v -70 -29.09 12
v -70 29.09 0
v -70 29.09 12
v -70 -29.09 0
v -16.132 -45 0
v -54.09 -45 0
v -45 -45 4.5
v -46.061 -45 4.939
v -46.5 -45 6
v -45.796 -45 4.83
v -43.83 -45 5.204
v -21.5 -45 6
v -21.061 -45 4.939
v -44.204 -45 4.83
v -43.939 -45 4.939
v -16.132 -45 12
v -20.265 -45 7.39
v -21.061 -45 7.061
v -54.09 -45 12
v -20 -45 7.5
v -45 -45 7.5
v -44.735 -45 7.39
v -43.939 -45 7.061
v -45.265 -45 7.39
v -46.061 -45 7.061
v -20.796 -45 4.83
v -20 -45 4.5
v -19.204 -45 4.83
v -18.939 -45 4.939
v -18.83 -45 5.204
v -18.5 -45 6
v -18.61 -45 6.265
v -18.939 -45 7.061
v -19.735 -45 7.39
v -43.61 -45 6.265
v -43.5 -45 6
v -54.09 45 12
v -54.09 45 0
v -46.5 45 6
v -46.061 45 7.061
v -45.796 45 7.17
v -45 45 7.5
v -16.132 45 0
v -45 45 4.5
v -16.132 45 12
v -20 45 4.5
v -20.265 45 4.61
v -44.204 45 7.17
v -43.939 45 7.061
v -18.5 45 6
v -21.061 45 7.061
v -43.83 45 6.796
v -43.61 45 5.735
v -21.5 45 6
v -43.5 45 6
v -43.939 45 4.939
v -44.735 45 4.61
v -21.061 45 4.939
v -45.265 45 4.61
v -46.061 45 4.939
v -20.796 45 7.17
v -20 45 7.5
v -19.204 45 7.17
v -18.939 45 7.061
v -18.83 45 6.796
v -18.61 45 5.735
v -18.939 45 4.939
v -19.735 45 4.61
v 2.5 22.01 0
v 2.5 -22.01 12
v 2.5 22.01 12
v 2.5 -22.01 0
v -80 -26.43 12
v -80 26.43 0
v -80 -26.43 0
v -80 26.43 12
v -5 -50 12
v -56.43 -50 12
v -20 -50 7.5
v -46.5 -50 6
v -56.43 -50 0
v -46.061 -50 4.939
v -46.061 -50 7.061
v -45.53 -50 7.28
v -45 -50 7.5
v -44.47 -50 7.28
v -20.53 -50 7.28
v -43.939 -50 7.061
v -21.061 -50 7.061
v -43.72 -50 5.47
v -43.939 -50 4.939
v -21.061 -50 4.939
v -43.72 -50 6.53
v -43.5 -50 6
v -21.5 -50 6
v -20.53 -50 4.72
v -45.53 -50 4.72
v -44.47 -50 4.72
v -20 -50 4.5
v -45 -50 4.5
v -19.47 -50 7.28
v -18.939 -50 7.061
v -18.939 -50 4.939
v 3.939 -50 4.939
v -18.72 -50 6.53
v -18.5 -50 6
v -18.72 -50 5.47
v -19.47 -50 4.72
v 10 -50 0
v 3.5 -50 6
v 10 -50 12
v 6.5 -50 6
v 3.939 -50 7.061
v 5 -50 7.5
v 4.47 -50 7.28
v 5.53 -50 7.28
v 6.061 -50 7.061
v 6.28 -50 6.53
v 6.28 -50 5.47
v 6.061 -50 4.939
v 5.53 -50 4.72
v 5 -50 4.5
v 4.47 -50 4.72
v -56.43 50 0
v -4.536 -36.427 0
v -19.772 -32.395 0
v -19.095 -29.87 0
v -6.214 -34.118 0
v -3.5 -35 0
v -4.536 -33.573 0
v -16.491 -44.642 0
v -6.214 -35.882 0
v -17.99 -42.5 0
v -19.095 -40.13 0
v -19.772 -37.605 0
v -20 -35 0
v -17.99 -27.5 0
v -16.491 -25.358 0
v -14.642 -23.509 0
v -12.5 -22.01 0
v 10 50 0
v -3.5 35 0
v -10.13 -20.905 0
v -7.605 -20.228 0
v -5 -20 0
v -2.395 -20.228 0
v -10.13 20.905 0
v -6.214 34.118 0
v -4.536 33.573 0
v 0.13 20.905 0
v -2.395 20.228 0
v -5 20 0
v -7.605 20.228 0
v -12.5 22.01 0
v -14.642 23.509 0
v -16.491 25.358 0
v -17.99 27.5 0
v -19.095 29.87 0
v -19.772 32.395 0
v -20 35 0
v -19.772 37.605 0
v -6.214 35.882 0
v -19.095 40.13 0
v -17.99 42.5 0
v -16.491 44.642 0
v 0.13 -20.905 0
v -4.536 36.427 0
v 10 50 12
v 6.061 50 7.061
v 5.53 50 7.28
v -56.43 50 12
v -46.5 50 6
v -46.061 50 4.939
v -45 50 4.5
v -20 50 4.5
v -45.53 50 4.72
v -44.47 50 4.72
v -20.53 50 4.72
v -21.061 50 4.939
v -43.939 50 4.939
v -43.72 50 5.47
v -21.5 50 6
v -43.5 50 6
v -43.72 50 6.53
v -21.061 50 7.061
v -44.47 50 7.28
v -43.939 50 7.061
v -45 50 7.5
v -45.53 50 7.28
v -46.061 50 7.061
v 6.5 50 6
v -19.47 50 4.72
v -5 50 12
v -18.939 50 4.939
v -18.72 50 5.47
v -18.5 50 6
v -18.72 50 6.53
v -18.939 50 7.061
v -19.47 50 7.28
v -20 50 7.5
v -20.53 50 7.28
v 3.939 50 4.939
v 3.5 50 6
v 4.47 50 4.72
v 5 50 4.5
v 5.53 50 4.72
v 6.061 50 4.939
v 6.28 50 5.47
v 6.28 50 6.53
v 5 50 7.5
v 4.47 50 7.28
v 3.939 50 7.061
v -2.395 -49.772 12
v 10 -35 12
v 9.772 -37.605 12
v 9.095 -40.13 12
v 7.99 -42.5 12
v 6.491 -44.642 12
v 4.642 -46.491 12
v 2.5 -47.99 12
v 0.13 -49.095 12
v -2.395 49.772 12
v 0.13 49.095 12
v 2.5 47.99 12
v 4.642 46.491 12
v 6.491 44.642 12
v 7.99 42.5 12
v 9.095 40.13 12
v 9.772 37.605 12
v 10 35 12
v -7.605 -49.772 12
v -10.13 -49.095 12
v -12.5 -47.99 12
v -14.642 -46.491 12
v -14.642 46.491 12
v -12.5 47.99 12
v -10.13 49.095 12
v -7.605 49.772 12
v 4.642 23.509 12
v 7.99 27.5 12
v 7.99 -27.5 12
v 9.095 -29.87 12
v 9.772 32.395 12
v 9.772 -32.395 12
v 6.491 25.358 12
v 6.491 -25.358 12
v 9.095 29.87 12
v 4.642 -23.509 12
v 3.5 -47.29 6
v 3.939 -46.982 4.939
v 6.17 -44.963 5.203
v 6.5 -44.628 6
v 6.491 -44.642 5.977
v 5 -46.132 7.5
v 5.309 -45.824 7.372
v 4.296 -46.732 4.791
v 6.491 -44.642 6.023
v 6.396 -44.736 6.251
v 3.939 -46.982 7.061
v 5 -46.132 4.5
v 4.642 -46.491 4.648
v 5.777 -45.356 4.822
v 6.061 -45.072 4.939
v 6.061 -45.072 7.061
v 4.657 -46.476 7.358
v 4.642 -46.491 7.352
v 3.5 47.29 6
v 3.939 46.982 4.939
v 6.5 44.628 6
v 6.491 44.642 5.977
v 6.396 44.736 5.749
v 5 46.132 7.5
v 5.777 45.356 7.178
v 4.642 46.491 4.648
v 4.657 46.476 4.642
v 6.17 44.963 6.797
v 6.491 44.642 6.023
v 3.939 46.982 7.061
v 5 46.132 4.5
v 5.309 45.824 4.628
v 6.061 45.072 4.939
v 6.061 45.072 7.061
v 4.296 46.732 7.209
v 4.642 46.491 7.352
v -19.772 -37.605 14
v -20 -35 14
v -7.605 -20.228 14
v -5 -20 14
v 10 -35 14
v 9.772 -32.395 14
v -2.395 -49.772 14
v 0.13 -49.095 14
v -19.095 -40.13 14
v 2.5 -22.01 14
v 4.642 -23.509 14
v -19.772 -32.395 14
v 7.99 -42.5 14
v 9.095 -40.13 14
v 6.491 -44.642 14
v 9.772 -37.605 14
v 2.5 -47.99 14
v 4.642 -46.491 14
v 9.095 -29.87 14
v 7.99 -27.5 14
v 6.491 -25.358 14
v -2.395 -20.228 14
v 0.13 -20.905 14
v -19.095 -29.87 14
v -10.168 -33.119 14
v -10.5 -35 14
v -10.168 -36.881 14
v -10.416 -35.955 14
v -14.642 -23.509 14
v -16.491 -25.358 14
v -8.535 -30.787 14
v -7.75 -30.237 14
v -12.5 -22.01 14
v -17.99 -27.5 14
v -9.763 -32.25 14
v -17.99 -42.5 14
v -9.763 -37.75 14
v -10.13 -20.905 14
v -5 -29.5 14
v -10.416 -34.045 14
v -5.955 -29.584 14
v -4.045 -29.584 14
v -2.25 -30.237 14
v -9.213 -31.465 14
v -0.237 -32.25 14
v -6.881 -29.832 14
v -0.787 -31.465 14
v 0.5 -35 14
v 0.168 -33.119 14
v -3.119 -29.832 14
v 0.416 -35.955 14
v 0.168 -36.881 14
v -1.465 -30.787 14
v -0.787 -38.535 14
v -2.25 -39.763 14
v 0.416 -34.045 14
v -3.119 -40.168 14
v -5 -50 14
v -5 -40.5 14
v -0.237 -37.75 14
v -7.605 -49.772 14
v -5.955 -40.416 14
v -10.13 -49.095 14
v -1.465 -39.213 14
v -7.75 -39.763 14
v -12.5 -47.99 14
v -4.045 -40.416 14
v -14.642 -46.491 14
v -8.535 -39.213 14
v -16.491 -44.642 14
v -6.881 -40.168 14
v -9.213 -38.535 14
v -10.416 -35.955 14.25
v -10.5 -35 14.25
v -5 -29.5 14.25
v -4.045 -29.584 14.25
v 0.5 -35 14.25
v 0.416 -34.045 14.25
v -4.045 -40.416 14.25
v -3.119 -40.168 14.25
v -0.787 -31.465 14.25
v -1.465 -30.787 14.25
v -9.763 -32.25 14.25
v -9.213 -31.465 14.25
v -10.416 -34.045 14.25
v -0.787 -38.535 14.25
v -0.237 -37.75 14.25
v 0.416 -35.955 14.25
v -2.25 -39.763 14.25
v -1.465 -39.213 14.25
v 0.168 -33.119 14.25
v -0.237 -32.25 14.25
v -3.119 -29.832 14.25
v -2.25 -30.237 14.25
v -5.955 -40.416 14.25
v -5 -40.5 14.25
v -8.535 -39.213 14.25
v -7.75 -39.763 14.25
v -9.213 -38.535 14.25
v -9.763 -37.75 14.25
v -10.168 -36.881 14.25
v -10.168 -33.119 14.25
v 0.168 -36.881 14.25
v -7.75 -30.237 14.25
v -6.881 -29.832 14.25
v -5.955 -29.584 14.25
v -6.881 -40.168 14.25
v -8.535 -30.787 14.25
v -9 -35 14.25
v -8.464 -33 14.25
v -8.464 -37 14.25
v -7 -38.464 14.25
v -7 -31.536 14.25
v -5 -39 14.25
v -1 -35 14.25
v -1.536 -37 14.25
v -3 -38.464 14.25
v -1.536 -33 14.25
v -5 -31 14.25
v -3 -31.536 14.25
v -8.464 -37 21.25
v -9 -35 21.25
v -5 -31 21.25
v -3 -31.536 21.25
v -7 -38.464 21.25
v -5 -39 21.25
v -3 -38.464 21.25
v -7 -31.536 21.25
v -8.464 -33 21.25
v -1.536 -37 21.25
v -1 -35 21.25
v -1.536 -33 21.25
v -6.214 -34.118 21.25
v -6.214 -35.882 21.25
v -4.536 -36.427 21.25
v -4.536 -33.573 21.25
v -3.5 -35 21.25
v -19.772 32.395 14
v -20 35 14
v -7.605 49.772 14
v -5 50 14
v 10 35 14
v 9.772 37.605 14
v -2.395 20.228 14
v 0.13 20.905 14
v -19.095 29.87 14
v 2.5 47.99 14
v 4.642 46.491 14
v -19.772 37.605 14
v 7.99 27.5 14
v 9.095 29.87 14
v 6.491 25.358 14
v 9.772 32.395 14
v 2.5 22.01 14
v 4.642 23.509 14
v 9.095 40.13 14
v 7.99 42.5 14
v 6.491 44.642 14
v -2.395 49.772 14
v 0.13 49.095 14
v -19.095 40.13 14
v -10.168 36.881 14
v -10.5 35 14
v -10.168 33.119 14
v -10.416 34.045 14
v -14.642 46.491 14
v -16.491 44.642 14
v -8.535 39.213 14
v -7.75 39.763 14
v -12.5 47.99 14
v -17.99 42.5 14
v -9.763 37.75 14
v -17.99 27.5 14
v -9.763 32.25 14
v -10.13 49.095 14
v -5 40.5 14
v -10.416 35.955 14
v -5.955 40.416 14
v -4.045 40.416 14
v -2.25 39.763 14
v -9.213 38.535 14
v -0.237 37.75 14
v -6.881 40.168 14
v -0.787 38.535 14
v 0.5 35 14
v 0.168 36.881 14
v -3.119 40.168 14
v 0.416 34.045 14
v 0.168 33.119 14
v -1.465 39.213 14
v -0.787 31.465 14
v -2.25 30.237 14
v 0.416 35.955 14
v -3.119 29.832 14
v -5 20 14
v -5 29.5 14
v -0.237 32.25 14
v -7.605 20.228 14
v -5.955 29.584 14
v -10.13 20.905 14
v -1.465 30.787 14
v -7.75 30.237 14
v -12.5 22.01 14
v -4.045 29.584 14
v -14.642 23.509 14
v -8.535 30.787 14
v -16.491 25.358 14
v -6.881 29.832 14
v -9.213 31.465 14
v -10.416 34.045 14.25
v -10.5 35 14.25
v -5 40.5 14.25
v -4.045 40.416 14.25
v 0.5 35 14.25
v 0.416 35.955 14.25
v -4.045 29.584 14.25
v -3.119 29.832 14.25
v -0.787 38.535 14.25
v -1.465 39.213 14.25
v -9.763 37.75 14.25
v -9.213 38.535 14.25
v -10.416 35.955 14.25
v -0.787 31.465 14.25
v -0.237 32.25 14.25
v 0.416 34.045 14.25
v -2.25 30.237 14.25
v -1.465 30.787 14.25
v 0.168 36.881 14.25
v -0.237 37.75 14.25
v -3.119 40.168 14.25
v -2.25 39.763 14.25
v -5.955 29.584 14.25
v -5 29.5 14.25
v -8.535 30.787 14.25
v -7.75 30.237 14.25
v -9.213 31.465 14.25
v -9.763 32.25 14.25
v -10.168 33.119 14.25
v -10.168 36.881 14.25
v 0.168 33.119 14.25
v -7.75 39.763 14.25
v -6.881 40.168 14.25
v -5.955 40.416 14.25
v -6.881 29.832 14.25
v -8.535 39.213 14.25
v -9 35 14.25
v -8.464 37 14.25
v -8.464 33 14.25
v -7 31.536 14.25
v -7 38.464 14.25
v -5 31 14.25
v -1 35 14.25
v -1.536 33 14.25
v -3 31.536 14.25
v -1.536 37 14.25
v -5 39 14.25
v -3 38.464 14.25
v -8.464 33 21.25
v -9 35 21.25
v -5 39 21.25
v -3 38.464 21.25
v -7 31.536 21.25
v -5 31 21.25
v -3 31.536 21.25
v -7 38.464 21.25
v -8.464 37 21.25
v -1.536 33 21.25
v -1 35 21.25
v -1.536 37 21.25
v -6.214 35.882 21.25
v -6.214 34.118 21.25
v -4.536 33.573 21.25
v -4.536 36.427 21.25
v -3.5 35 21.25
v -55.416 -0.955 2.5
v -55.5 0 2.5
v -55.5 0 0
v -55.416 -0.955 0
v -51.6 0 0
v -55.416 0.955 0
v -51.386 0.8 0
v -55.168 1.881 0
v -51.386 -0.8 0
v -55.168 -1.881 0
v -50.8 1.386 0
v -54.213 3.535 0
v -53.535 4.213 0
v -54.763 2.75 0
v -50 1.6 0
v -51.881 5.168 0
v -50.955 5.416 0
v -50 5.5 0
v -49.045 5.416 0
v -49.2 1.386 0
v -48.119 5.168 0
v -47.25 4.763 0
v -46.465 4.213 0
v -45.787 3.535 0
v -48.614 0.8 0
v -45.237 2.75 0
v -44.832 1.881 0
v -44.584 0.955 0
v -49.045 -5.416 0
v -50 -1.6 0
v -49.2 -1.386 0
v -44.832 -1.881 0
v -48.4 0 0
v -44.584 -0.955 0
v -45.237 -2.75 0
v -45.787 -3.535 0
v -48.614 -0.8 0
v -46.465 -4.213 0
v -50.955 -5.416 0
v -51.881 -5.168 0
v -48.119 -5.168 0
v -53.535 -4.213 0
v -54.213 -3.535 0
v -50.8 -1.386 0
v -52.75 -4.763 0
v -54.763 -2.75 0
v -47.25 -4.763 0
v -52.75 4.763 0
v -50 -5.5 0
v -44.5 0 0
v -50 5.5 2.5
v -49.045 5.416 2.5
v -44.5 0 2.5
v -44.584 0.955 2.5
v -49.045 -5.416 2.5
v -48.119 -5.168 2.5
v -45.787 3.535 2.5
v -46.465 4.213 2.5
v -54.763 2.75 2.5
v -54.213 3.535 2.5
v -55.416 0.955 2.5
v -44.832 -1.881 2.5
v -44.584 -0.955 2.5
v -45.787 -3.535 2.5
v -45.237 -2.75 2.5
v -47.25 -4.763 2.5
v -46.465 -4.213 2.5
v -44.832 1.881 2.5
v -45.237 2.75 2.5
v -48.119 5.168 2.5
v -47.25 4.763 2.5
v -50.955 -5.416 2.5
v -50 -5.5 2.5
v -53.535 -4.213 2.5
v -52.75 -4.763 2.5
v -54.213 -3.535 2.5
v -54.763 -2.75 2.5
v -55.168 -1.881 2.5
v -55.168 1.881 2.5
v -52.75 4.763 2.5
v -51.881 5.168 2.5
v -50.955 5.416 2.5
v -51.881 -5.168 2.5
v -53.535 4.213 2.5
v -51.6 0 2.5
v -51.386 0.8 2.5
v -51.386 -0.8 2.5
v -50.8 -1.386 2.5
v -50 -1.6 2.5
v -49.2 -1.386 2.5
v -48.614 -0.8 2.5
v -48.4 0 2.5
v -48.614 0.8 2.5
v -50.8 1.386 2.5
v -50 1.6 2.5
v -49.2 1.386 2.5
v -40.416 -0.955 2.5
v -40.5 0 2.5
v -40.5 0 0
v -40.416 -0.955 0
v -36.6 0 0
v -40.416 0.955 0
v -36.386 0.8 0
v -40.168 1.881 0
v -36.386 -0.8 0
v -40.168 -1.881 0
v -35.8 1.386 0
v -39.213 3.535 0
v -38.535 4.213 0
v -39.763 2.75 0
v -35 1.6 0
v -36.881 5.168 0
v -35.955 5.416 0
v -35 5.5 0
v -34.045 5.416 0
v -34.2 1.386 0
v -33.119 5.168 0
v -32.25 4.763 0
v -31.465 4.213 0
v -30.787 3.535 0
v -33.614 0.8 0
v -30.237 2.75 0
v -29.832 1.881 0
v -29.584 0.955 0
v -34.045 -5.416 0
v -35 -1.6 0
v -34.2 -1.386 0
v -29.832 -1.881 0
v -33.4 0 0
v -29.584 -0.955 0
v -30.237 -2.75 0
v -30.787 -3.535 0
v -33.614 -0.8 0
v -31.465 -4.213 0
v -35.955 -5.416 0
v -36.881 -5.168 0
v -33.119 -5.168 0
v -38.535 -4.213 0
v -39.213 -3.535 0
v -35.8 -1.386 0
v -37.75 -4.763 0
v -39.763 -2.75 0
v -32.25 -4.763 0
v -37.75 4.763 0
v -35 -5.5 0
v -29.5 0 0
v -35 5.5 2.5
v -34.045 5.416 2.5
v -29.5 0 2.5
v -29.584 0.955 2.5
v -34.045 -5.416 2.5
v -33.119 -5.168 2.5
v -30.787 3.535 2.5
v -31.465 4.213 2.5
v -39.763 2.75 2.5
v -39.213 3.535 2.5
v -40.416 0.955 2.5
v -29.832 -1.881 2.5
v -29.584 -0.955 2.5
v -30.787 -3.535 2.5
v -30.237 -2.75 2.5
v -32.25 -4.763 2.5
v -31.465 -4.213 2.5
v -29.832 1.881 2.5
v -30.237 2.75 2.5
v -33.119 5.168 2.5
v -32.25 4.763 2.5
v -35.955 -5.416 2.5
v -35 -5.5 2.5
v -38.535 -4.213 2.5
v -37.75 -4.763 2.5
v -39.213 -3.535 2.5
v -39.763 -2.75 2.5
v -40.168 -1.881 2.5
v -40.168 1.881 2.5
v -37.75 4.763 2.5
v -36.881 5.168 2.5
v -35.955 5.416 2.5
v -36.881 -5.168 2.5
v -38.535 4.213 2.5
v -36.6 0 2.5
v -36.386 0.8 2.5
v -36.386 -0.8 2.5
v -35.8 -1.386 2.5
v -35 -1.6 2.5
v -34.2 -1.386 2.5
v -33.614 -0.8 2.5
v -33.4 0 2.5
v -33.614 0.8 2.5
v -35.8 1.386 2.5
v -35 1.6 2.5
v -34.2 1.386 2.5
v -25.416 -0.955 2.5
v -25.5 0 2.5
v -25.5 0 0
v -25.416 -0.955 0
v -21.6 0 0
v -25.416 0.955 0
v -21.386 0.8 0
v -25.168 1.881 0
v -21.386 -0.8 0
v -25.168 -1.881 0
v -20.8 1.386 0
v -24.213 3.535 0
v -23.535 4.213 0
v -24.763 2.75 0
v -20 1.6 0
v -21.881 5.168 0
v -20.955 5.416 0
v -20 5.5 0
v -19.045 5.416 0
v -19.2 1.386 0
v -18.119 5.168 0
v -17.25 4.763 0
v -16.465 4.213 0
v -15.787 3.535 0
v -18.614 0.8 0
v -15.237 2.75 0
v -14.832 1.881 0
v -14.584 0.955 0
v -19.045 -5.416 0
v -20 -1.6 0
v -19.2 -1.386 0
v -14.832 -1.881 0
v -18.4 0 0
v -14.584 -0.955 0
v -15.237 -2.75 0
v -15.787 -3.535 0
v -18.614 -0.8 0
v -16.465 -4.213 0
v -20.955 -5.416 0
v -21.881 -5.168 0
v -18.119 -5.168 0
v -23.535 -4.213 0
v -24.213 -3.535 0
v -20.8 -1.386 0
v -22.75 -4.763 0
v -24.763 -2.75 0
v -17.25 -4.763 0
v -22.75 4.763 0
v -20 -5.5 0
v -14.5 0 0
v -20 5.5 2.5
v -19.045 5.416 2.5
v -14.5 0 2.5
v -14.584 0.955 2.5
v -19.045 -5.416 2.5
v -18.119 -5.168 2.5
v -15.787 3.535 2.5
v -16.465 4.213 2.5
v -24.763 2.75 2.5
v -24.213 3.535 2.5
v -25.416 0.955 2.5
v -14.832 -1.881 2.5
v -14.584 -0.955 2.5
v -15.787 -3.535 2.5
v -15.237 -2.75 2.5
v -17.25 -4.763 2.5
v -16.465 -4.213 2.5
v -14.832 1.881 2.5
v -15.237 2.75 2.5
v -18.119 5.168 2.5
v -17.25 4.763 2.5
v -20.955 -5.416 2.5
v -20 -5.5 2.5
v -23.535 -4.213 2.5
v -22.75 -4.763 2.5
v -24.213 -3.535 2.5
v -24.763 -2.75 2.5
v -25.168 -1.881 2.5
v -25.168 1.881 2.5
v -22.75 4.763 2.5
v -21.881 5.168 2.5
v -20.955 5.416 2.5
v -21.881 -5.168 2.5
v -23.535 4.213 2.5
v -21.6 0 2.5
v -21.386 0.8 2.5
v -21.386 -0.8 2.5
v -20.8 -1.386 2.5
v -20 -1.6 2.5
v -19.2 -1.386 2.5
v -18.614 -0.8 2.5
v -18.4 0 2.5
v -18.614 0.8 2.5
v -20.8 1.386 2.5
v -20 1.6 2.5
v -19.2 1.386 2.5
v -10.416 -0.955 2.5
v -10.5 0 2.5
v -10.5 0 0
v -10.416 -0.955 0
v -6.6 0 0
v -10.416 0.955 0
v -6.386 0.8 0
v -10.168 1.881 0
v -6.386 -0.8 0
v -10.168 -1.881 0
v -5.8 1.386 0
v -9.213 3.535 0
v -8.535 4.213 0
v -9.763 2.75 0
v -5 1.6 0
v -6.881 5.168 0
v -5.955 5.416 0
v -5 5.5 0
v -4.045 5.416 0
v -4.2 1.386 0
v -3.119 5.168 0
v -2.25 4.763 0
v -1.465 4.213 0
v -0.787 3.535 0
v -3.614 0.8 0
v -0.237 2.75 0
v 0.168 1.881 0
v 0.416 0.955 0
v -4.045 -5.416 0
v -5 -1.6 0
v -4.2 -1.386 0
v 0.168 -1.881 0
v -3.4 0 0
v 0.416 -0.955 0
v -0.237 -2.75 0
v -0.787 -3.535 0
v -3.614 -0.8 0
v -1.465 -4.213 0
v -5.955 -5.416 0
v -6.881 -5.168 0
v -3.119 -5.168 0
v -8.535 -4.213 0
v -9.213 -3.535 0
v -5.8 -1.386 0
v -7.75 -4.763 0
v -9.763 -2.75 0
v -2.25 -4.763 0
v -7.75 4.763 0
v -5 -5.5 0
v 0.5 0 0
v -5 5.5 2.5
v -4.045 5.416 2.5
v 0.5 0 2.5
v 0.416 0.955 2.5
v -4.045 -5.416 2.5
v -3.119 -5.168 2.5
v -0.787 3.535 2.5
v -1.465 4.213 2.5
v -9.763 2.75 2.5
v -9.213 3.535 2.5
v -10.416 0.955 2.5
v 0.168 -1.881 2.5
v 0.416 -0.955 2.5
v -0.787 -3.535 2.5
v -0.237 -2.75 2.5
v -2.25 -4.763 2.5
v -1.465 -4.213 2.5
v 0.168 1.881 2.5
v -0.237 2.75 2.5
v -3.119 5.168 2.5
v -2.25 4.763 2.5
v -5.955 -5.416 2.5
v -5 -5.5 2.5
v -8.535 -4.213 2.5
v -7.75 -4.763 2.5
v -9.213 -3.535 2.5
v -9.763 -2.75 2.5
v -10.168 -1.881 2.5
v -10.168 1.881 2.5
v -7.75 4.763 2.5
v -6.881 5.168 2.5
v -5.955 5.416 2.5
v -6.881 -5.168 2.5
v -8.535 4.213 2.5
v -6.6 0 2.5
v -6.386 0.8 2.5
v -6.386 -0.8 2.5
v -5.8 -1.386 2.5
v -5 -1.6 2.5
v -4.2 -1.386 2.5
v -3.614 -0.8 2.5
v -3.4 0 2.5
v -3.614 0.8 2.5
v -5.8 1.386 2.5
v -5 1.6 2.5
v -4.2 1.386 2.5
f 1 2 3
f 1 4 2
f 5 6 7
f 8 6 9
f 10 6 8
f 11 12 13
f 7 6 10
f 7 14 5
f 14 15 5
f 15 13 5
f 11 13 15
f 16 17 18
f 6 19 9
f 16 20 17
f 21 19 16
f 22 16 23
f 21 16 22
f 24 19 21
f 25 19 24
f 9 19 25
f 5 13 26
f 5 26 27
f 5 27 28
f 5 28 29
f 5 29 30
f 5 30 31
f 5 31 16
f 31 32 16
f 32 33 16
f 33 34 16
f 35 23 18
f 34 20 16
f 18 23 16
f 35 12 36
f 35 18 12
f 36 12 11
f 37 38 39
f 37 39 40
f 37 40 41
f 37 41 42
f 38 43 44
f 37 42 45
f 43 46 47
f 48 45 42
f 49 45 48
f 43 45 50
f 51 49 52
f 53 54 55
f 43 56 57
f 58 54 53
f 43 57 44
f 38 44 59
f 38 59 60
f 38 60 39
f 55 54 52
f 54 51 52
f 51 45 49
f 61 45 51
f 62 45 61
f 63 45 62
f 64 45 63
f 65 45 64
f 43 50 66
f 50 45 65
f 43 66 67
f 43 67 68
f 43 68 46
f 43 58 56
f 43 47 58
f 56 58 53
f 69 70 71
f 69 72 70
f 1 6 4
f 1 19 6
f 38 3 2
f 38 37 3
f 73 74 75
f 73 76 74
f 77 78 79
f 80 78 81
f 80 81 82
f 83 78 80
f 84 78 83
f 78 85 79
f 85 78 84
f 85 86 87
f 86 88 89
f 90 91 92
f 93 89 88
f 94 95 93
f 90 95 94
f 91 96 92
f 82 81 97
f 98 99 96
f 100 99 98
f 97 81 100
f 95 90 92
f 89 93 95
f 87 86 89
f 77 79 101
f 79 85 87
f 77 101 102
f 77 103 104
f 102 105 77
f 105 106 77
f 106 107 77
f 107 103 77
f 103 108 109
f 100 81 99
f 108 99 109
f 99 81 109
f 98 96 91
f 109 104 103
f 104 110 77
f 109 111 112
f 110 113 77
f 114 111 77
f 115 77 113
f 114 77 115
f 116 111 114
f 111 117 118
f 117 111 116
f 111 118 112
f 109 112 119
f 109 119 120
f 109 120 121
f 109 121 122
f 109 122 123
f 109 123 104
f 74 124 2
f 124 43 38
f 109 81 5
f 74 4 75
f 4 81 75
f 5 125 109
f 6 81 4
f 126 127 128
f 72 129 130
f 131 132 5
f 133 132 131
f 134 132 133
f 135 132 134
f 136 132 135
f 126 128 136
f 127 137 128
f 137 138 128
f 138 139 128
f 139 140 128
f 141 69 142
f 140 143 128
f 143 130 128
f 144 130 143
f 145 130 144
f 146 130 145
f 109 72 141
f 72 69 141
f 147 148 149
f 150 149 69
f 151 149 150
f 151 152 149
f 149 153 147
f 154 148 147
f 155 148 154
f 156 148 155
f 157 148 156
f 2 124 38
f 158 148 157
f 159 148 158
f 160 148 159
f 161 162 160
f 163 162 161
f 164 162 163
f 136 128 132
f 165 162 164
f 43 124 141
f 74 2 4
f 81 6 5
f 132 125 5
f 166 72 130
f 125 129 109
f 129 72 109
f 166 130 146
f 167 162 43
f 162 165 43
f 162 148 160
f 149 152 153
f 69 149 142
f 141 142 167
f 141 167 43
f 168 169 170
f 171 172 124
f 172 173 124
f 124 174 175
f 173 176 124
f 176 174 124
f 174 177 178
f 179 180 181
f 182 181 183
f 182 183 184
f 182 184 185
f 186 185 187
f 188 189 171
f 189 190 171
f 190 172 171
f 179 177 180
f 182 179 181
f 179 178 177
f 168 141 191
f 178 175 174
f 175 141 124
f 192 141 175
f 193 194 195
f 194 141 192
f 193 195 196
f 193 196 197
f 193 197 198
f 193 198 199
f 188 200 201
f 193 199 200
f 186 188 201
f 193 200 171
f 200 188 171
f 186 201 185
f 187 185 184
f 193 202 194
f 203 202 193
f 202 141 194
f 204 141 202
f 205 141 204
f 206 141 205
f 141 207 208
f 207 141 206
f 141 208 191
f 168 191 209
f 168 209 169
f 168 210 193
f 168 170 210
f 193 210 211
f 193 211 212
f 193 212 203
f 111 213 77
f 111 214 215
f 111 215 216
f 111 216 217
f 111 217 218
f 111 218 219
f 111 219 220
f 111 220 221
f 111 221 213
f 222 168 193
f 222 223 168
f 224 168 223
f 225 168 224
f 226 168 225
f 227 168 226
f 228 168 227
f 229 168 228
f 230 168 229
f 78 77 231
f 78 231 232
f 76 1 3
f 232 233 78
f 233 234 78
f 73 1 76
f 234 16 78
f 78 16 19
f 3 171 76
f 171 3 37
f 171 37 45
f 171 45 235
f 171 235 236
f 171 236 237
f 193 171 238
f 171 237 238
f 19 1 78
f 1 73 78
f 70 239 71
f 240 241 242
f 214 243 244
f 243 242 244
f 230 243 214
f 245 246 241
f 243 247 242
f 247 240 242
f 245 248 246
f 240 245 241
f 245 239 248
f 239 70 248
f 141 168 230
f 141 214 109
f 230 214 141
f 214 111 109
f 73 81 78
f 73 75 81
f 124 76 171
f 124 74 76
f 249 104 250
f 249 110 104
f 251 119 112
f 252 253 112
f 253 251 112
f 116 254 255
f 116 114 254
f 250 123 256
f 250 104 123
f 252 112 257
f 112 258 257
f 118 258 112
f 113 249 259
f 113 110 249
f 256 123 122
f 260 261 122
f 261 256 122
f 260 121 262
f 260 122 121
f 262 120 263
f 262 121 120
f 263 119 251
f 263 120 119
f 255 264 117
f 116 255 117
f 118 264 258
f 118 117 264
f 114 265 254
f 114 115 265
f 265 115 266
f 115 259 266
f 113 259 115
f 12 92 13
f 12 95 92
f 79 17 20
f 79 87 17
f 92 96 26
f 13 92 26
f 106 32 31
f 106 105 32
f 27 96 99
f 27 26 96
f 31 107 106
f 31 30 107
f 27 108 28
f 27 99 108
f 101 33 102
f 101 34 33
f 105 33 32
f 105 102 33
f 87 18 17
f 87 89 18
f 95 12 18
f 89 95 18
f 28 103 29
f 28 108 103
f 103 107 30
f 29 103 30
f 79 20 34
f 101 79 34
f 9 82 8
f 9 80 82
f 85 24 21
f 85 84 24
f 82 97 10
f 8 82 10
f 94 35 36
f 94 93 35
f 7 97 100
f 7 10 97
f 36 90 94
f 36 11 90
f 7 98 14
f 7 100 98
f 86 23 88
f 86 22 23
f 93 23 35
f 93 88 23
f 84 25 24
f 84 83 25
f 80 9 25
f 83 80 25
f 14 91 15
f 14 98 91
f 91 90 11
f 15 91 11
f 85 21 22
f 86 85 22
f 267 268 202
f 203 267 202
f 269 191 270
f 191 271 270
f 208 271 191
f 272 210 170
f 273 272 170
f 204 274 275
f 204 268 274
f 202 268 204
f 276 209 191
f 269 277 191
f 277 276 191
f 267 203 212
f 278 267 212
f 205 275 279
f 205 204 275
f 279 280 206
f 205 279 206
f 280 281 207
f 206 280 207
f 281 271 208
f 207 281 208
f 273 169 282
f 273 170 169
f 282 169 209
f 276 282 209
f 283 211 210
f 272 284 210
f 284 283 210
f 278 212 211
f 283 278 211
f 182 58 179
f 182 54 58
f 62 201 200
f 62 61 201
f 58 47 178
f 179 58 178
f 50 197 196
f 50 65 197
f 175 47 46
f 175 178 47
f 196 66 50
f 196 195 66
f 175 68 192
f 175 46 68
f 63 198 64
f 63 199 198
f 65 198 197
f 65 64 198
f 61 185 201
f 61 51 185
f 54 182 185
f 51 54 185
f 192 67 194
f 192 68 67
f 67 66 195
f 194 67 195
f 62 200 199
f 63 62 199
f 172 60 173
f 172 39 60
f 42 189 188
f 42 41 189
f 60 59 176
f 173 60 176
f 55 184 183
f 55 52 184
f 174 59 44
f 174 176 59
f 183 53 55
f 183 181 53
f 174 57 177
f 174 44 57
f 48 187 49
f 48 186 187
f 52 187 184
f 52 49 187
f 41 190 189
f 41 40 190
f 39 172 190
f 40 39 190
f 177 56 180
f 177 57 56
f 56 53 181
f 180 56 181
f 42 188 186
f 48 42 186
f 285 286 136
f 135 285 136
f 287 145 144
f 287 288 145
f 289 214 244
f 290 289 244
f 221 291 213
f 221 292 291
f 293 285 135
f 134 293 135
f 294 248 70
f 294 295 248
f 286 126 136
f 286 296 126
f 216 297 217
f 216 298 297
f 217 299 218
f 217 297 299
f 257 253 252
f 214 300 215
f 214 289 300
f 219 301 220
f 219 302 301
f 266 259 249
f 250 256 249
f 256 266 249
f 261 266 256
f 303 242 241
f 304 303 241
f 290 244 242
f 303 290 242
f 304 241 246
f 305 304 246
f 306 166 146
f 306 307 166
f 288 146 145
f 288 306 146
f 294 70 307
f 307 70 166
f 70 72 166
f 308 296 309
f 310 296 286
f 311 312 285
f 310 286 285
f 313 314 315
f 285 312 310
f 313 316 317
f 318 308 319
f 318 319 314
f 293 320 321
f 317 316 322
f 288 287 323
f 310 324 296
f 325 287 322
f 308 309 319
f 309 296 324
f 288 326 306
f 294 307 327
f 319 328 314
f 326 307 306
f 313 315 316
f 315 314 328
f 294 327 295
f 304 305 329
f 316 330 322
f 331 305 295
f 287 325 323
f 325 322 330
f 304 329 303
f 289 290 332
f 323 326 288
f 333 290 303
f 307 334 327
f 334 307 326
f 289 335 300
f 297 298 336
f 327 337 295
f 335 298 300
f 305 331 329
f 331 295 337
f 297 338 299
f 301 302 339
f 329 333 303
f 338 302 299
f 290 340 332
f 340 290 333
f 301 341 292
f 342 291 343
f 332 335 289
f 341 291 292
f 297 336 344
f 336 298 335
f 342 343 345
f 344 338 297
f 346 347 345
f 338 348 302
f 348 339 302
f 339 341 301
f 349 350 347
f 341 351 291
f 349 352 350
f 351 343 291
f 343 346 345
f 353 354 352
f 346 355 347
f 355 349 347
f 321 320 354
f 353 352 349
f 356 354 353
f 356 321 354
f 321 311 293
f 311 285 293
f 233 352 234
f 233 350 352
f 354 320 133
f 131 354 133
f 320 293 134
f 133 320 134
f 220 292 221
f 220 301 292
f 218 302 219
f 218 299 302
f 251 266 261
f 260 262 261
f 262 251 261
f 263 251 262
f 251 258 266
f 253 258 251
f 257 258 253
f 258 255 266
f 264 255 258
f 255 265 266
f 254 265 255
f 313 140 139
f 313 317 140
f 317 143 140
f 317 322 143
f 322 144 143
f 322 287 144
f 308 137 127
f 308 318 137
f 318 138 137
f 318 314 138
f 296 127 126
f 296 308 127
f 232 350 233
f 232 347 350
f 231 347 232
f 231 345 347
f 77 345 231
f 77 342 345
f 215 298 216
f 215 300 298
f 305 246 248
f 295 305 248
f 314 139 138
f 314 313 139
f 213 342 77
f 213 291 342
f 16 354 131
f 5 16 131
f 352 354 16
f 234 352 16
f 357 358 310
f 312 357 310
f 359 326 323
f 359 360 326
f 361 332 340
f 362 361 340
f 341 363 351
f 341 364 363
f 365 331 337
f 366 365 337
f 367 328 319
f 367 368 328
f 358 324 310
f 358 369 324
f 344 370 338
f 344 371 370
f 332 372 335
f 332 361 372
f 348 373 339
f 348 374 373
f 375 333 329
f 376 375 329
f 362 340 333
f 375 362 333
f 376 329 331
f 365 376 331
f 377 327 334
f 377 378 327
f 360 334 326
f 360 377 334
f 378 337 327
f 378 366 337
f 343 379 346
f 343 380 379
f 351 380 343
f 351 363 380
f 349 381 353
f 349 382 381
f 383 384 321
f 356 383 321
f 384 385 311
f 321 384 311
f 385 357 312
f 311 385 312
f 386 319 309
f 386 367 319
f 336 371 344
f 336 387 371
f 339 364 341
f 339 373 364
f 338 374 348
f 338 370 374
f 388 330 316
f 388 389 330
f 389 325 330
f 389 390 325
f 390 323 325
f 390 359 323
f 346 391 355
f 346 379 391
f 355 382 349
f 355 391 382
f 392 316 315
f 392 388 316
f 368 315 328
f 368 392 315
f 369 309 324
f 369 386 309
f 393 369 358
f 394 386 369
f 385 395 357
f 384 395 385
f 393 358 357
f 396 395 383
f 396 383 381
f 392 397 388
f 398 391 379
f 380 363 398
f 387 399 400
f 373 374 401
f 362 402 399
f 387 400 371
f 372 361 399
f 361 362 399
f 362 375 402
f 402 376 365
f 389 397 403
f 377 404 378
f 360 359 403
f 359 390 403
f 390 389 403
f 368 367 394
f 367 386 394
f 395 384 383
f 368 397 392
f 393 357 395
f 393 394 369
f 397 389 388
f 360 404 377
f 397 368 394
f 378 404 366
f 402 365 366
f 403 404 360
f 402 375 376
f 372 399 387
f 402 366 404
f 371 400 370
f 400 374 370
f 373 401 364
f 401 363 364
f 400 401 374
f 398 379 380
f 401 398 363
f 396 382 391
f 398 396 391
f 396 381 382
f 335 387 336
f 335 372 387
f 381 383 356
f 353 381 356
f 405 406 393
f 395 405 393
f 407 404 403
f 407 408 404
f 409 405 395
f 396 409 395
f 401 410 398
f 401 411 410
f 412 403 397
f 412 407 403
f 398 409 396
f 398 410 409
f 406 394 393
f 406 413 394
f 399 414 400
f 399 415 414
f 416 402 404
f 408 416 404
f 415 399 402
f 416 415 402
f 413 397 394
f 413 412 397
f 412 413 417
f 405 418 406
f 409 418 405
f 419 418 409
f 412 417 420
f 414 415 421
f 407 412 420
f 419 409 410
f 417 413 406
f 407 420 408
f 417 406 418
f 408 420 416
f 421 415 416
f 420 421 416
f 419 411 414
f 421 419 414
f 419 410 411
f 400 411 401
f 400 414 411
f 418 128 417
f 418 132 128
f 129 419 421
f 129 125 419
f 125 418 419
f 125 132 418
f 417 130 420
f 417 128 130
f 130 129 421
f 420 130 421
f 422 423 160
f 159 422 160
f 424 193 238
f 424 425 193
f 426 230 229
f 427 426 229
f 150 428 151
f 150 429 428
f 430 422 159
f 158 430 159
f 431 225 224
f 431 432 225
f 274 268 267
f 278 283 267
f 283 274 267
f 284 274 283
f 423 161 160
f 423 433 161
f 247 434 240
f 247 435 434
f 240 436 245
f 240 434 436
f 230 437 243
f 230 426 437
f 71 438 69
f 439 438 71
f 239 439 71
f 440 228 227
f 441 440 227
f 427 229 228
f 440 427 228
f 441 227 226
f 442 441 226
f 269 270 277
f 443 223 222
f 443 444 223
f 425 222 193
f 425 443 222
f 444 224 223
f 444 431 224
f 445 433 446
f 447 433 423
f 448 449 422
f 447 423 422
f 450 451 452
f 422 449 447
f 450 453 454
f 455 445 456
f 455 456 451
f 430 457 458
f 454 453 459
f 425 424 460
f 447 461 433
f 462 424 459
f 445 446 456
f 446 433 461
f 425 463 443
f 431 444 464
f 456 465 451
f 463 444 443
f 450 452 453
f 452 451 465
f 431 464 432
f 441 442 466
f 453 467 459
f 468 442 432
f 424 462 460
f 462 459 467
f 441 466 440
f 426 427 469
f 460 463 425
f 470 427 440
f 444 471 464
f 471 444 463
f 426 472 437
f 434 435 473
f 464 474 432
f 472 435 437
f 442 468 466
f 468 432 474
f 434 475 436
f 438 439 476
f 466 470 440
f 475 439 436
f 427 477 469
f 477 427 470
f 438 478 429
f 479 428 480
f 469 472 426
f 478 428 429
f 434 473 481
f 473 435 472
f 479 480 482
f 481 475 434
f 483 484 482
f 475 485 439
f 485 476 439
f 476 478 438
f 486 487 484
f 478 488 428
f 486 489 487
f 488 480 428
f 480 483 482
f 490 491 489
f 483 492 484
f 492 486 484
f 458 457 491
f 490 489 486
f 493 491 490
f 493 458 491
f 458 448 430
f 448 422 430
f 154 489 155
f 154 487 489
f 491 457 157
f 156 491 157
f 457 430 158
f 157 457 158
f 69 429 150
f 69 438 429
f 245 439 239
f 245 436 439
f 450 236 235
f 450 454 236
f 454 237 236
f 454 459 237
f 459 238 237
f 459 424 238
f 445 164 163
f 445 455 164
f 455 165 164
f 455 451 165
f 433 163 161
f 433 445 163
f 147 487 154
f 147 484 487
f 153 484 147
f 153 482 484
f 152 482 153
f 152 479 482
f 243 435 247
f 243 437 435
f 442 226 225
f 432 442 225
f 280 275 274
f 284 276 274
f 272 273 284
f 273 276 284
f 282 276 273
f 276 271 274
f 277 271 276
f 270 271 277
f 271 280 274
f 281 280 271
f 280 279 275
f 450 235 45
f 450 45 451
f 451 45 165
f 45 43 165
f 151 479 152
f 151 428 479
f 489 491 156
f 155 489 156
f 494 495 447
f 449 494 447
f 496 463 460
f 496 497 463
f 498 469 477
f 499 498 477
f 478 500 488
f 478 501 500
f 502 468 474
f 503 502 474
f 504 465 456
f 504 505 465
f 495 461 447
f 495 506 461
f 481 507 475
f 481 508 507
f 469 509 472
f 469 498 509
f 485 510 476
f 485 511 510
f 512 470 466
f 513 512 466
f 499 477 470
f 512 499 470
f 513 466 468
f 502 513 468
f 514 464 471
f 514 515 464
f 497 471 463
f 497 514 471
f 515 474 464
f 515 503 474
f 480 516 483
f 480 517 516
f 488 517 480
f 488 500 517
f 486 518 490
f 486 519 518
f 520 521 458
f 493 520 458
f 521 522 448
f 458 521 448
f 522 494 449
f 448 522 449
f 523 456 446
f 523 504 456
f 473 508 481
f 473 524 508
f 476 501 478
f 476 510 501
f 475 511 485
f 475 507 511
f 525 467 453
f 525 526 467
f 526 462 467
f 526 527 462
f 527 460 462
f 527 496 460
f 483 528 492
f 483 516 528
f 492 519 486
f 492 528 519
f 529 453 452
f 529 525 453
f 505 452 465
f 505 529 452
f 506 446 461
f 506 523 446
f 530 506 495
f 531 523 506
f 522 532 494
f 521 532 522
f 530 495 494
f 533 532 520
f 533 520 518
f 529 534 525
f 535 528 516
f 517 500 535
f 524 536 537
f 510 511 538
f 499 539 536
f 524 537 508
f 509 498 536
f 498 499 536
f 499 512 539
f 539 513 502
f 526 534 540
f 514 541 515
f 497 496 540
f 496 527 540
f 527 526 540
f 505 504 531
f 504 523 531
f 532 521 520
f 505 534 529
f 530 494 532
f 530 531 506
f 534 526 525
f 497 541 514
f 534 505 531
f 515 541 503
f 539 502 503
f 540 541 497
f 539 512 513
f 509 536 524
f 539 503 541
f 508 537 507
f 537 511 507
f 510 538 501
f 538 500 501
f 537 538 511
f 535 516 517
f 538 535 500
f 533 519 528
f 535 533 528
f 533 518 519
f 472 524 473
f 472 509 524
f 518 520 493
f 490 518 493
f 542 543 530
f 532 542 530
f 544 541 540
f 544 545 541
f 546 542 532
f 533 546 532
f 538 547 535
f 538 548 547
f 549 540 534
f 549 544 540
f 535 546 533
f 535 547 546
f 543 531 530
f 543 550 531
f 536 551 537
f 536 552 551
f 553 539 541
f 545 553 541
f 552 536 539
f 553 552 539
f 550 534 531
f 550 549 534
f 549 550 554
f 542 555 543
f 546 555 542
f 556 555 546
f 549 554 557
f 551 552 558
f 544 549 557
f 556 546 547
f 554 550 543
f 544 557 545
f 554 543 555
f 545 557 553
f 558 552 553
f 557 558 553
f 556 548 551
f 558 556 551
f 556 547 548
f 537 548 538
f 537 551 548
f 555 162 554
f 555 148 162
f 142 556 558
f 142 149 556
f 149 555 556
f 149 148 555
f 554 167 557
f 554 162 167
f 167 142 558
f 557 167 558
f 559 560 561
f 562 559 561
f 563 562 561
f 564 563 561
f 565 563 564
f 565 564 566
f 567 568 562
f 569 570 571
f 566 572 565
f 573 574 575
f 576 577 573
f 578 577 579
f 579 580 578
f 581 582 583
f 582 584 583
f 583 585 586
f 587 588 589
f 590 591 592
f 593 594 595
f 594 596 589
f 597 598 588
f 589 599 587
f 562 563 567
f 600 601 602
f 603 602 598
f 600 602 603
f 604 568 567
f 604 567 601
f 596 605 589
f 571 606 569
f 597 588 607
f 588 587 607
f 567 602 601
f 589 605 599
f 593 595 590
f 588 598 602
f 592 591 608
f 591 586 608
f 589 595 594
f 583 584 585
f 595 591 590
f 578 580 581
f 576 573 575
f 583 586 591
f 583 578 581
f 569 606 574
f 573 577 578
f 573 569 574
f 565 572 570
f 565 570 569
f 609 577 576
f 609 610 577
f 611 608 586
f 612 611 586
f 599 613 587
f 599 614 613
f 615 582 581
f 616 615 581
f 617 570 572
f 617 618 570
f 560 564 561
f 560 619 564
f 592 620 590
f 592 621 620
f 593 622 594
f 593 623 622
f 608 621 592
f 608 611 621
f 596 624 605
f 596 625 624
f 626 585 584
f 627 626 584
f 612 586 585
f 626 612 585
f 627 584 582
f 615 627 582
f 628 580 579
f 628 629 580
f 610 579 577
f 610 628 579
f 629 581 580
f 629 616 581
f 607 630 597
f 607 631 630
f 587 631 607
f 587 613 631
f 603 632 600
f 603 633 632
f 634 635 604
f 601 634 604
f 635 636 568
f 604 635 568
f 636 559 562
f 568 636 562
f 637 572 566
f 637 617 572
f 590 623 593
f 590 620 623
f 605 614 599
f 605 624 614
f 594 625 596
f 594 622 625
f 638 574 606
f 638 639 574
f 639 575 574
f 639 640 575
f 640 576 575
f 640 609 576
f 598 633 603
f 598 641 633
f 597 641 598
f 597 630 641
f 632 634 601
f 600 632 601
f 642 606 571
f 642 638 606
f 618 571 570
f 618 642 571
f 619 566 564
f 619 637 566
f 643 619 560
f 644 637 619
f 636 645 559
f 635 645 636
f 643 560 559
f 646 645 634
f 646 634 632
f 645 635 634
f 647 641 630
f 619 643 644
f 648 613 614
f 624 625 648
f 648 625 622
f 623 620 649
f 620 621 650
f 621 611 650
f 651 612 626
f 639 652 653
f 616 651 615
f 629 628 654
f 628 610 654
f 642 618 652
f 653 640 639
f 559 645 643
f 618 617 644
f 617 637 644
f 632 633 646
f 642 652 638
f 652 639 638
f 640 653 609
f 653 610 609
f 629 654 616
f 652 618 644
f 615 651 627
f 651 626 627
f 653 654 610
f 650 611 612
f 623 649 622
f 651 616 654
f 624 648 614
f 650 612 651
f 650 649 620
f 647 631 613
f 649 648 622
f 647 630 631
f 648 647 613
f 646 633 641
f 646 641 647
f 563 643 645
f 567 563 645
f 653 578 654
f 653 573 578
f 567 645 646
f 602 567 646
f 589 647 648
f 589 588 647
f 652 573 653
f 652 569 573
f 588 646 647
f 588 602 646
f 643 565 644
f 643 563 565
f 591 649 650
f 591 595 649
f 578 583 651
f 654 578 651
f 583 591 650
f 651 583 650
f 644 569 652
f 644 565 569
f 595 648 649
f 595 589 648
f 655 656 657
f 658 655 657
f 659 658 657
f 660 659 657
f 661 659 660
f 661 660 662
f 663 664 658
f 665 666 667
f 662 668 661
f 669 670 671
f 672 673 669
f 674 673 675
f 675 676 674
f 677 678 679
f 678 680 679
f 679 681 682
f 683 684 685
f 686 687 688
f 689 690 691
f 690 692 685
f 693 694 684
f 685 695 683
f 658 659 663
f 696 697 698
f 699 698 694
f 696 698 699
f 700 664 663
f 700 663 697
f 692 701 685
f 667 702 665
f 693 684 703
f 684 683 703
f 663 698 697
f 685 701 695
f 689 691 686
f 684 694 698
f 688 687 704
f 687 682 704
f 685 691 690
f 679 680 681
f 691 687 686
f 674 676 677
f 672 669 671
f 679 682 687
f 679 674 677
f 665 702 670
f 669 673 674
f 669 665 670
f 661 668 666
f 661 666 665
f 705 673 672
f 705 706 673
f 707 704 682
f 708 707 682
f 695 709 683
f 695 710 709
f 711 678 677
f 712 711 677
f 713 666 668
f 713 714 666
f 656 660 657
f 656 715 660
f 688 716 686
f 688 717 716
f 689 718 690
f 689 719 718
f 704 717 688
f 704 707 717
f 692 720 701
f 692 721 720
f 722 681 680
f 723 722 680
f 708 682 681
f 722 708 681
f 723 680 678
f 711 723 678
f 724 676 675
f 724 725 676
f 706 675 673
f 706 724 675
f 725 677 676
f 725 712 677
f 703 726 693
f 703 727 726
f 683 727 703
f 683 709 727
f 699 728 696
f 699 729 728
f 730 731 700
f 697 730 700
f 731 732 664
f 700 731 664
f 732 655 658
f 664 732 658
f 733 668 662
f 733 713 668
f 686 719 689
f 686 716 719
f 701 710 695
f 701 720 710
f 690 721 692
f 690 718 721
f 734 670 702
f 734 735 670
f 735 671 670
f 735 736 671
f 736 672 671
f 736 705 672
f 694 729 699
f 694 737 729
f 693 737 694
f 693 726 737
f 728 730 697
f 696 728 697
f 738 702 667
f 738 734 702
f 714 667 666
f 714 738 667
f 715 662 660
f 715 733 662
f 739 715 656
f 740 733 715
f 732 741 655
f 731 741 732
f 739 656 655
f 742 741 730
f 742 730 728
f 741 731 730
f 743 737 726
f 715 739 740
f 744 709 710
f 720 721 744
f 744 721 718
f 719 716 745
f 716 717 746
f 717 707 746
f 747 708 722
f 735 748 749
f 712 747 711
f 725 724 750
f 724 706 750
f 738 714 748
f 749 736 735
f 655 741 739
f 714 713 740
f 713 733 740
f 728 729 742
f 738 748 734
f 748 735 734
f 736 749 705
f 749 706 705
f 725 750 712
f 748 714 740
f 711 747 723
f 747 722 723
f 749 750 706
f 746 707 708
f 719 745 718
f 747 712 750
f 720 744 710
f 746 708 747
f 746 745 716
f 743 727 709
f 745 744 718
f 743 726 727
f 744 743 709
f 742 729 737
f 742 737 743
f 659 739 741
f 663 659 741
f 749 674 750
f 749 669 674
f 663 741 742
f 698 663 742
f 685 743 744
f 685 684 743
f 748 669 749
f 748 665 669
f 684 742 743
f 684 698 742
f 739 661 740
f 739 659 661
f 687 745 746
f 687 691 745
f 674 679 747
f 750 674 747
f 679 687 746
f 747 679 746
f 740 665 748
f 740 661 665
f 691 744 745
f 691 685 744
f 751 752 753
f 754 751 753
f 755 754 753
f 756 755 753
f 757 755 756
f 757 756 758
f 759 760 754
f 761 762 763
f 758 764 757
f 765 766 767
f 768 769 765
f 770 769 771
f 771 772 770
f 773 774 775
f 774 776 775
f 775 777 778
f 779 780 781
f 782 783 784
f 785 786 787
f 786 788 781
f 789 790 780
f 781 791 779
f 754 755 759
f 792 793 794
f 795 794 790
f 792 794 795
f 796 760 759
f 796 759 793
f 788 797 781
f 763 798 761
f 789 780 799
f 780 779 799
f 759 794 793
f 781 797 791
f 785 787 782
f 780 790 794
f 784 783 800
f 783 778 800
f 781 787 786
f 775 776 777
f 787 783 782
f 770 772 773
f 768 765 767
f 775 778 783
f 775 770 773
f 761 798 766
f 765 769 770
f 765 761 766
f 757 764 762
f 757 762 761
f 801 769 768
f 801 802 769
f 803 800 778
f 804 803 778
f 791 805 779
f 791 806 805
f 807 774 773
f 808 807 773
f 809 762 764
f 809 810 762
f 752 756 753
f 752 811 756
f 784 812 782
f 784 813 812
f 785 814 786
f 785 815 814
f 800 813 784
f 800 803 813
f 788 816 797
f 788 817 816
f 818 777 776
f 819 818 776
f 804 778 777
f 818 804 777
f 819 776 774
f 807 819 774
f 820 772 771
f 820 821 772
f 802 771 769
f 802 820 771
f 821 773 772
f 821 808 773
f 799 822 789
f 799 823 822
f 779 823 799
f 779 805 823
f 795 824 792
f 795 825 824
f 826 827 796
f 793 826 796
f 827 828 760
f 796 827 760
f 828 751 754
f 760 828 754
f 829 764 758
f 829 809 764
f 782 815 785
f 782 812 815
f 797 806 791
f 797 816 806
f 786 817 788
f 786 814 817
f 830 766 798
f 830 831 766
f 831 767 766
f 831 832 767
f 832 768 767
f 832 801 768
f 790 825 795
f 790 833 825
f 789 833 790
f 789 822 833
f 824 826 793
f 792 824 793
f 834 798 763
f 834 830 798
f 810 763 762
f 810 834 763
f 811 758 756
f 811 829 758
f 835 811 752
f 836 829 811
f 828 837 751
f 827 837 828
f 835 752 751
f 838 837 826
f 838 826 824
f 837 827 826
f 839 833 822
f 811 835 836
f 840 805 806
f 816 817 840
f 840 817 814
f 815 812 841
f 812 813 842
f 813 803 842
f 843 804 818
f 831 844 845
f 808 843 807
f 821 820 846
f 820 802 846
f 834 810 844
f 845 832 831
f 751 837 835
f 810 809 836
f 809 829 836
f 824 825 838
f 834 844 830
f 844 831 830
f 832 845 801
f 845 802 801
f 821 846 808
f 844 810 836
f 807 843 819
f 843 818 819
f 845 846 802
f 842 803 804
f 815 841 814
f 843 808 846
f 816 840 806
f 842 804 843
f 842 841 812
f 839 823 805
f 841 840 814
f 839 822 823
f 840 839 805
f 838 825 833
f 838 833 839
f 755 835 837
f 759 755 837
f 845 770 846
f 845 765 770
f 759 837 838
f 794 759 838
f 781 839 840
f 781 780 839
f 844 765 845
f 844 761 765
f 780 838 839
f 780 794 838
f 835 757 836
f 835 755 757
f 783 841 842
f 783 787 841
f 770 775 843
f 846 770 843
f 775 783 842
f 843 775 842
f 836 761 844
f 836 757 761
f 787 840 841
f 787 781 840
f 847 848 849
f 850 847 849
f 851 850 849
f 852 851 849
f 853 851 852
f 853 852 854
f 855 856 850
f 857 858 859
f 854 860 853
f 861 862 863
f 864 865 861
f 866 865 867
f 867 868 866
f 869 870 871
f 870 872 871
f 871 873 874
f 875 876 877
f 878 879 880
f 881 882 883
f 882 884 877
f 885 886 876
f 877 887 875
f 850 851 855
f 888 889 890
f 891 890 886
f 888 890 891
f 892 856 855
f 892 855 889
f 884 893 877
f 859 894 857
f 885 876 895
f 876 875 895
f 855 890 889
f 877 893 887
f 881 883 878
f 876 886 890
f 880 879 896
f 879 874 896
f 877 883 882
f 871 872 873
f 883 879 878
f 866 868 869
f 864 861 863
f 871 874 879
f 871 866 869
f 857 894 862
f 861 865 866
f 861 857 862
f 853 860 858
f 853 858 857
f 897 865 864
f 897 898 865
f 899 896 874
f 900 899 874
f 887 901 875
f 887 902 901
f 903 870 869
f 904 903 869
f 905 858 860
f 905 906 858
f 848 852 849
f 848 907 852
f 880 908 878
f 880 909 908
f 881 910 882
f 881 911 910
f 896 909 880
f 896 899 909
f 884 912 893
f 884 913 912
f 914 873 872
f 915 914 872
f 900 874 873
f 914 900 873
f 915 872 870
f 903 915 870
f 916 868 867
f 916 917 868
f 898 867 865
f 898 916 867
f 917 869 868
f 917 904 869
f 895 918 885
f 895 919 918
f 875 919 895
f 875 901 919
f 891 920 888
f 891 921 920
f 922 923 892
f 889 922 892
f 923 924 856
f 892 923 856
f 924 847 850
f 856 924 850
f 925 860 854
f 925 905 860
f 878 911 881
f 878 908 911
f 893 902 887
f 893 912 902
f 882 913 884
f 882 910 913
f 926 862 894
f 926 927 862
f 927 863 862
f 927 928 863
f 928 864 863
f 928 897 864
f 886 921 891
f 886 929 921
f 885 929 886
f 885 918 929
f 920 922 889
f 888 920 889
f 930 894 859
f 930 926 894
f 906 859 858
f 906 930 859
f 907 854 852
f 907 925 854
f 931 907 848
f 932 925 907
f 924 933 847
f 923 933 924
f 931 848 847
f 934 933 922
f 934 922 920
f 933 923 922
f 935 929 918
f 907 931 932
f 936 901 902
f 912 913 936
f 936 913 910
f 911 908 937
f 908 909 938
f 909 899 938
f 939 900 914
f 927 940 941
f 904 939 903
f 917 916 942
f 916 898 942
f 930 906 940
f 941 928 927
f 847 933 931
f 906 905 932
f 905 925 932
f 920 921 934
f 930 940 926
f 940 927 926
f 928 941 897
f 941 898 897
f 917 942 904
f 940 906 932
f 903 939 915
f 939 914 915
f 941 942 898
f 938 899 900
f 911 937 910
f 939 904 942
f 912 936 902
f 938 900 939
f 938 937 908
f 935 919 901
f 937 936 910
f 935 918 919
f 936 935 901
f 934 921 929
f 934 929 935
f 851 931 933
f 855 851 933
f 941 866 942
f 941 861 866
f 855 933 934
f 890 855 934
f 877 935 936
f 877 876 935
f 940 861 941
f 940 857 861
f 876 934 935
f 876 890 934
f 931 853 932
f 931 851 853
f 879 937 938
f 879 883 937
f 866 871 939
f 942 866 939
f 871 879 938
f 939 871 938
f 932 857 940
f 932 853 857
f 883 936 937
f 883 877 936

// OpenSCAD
// Desktop ball bearing spool holder
// Written by Joe Cabana  3/1/2014
// Added bigger spool sizes 4/8/2014
// You are free to use and/or modify this software for non-comercial
// uses as long as you retain this message. Thanks.

// Print at .25 layer height, 25% infill, 2 extra shells

DoArms = 0;  // Set to non-zero to draw the outer bracket support arms, 0 to draw the rest of the stuff

Show = 0;  // Set to non-zero to show bearings

// Spool dimensions
SpoolCnt = 14;  // Number of spool sizes
SpoolWid = [97,93,89,85,81,77,73,69,65,61,57,53,49,45];  // Width of filament spool the first one must be the biggest, and the last one the smallest.
SpoolSpace = 1;  // Extra space on each side of the spool

// Mounting Latch dimensions
LatchWid = 45;  // Width of latching section

// Bearing mount dimensions
SplShdDia = 30;  // Diameter of spool guiding shoulder
SplShdThk = 2;  // Thickness of spool guiding shoulder
BearShdDia = 11;  // Diameter of bearing mount shoulder
BearShdThk = .25;  // Thickness of bearing mount shoulder
BearInDia = 8;  // Diameter of bearing center hole
BearOutDia = 22;  // Outer diameter of bearing
BearThk = 7;  // Thickness of the bearing
BearWashThk = 2.5;  // Thickness of bearing mounting washers

// Bracket dimensions
LatchOff = 0;  // Offset into bracket of latch slot
InBrkThk = 12;  // Thickness of bracket on back of replicator
OutBrkThk = 8;  // Thickness of bracket on outside
BrkWid = 100; // Width of bracket on back of replicator
InBrkHgt = 90;  // Height of bracket on back or replicator
OutBrkHgt = 30;  // Height of outside bracket
SlotDepth = 3; // Depth of slots to hold outer bracket
SlotWidth = 2; // Width of slots to hold outer bracket
SlotClear = .2;  // Clearance for outer bracket slots
ArmWid = (2 * SplShdThk) + (2 * OutBrkThk) + InBrkThk + SpoolWid[0] + SpoolSpace + SlotWidth + 1;  // Width of outer bracket arms
ArmThk = 3;  // Thickness of outer bracket arms

// Screw hole sizes
ScrewDia = 3.0; // Diameter of screw hole
ScrewClear = 3.2; // Diameter of screw clearance hole

if (DoArms)
{
	// Outer bracket mounting arms
	translate([-OutBrkHgt*1.5,-(ArmWid/2+InBrkThk),0])
		Arm(0);
	translate([OutBrkHgt/2+5,ArmWid/2-InBrkThk,ArmThk])
		rotate([180,0,0])
			Arm(1);

	// End plate
	translate([-12.5,-(ArmWid/2-3),0])
		EndPlate();
}
else
{
	translate([-80,-50,0])
	{
		// Outside bracket
		//translate([InBrkHgt/2+BrkWid/1.5-18,0,0])
			// Bracket
		//	OutBracket(Show);
	
		// Back bracket
		union()
		{
			// Brackets
			BackBracket();
	
			// Bearing mounts
			translate([InBrkHgt-SplShdDia/2,SplShdDia/2,0])
				BearingMnt(Show,InBrkThk);
			translate([InBrkHgt-SplShdDia/2,BrkWid-SplShdDia/2,0])
				BearingMnt(Show,InBrkThk);
		}
	
		// Bearing washers
		translate([30,50,0])
			BearWash();
		translate([45,50,0])
			BearWash();
		translate([60,50,0])
			BearWash();
		translate([75,50,0])
			BearWash();

	}
}

// Routine to draw the outer bracket mounting arm
module Arm(Invert = 0)
{
	SlotBlockWid = SpoolWid[0]-SpoolWid[SpoolCnt-1]+(3*SlotWidth) + 1.5;  // Width of block to hold slots

	difference()
	{
		// Arm
		union()
		{
			cube([OutBrkHgt,ArmWid,ArmThk]);  // Arm
			cube([OutBrkHgt*2,InBrkThk,ArmThk]);  // Extra bracing
			if (Invert)
				translate([0,ArmWid-SlotBlockWid-OutBrkThk-.5,-(SlotDepth-SlotClear)])
					cube([OutBrkHgt,SlotBlockWid,ArmThk+SlotDepth-SlotClear]);  // Outer bracket support
			else
				translate([0,ArmWid-SlotBlockWid-OutBrkThk-.5,0])
					cube([OutBrkHgt,SlotBlockWid,ArmThk+SlotDepth-SlotClear]);  // Outer bracket support
		}

		// Outer bracket slots
		for (cnt = [0 : (SpoolCnt-1)])
			if (Invert)
				translate([SlotWidth-SlotClear,(2*SplShdThk)+OutBrkThk+InBrkThk+SpoolWid[cnt]+SpoolSpace-(SlotWidth+(2*SlotClear)),-(ArmThk+1)])
					cube([OutBrkHgt,SlotWidth+(2*SlotClear),SlotDepth+1]);  // Outer bracket support
			else
				translate([SlotWidth-SlotClear,(2*SplShdThk)+OutBrkThk+InBrkThk+SpoolWid[cnt]+SpoolSpace-(SlotWidth+(2*SlotClear)),ArmThk])
					cube([OutBrkHgt,SlotWidth+(2*SlotClear),SlotDepth+1]);  // Outer bracket support

		// Holes
		translate([OutBrkHgt/2,ArmWid/4,-1])
			cylinder(ArmThk+2,OutBrkHgt/4,OutBrkHgt/4,$fn=36);
		translate([OutBrkHgt/2,ArmWid/2.2,-1])
			cylinder(ArmThk+2,OutBrkHgt/4,OutBrkHgt/4,$fn=36);
//		translate([OutBrkHgt/2,ArmWid/1.5,-1])
//			cylinder(ArmThk+2,OutBrkHgt/4,OutBrkHgt/4,$fn=36);

		// Screw holes
		translate([5,InBrkThk/2,-1])
			cylinder(ArmThk+2,ScrewClear/2,ScrewClear/2,$fn=12);
		translate([OutBrkHgt,InBrkThk/2,-1])
			cylinder(ArmThk+2,ScrewClear/2,ScrewClear/2,$fn=12);
		translate([2*OutBrkHgt-5,InBrkThk/2,-1])
			cylinder(ArmThk+2,ScrewClear/2,ScrewClear/2,$fn=12);
		translate([5,ArmWid-OutBrkThk/2,-1])
			cylinder(ArmThk+2,ScrewClear/2,ScrewClear/2,$fn=12);
		translate([OutBrkHgt-5,ArmWid-OutBrkThk/2,-1])
			cylinder(ArmThk+2,ScrewClear/2,ScrewClear/2,$fn=12);
	}
}

// Routine to draw the outside bracket
module OutBracket(Show = 0)
{
	difference()
	{
		union()
		{
			difference()
			{
				// Outside plate
				cube([OutBrkHgt,BrkWid,OutBrkThk]);
		
				// Hole in center
				translate([5,SplShdDia,-1])
					cube([OutBrkHgt-10,BrkWid-2*SplShdDia,OutBrkThk+2]);
			}
				// Bearing mounts
			translate([OutBrkHgt-SplShdDia/2,SplShdDia/2,0])
				BearingMnt(Show,OutBrkThk);
			translate([OutBrkHgt-SplShdDia/2,BrkWid-SplShdDia/2,0])
				BearingMnt(Show,OutBrkThk);
		}
		
		// Cut down for slots
		translate([-1,0,SlotWidth])
			cube([OutBrkHgt+2,SlotDepth,OutBrkThk+SplShdThk]);
		translate([-1,BrkWid-SlotDepth,SlotWidth])
			cube([OutBrkHgt+2,SlotDepth,OutBrkThk+SplShdThk]);
		translate([-1,BrkWid-SlotDepth,-1])
			cube([SlotWidth+1,SlotDepth,OutBrkThk+SplShdThk+2]);
		translate([-1,0,-1])
			cube([SlotWidth+1,SlotDepth,OutBrkThk+SplShdThk+2]);

		// Trim for clearance
		translate([-1,SlotClear-SlotDepth,-1])
			cube([OutBrkHgt+1,SlotDepth,OutBrkThk+SplShdThk+2]);
		translate([-1,BrkWid-SlotClear,-1])
			cube([OutBrkHgt+1,SlotDepth,OutBrkThk+SplShdThk+2]);
	}
}

// Routine to draw the end plate
module EndPlate()
{
	difference()
	{
		// Outside plate
		cube([OutBrkHgt,BrkWid,OutBrkThk]);

		// Holes
		translate([OutBrkHgt/2,BrkWid/4,-1])
			cylinder(OutBrkThk+2,OutBrkHgt/3,OutBrkHgt/3,$fn=36);
		translate([OutBrkHgt/2,BrkWid/2,-1])
			cylinder(OutBrkThk+2,OutBrkHgt/3,OutBrkHgt/3,$fn=36);
		translate([OutBrkHgt/2,BrkWid-BrkWid/4,-1])
			cylinder(OutBrkThk+2,OutBrkHgt/3,OutBrkHgt/3,$fn=36);

		// Screw holes
		translate([5,0,OutBrkThk/2])
			rotate([90,0,0])
				cylinder(20,ScrewDia/2,ScrewDia/2,true,$fn=8);
		translate([OutBrkHgt-5,0,OutBrkThk/2])
			rotate([90,0,0])
				cylinder(20,ScrewDia/2,ScrewDia/2,true,$fn=8);
		translate([5,BrkWid,OutBrkThk/2])
			rotate([90,0,0])
				cylinder(20,ScrewDia/2,ScrewDia/2,true,$fn=8);
		translate([OutBrkHgt-5,BrkWid,OutBrkThk/2])
			rotate([90,0,0])
				cylinder(20,ScrewDia/2,ScrewDia/2,true,$fn=8);
	}
}

// Routine to draw the bearing washer
module BearWash()
{
	difference()
	{
		// Washer
		cylinder(BearWashThk,BearShdDia/2,BearShdDia/2,$fn=36);
		// Hole for screw
		cylinder(BearWashThk*3,ScrewClear/2,ScrewClear/2,true,$fn=12);
	}
}

// Routine to draw back mounting bracket
module BackBracket()
{
	difference()
	{
		// Back plate
		cube([InBrkHgt,BrkWid,InBrkThk]);


		// Chop top corners
		rotate([0,0,45])
			cube([BrkWid/3,BrkWid/3,InBrkHgt*3],true);
		translate([0,BrkWid,0])
			rotate([0,0,45])
				cube([BrkWid/3,BrkWid/3,InBrkHgt*3],true);

		// Hole in center
		translate([LatchOff+10,5,-1])
			difference()
			{
				cube([InBrkHgt-(LatchOff+10)-SplShdDia/4,BrkWid-10,InBrkThk+2]);
				rotate([0,0,45])
					cube([LatchWid/2,LatchWid/2,InBrkHgt*3],true);
				translate([0,BrkWid-10,0])
					rotate([0,0,45])
						cube([LatchWid/2,LatchWid/2,InBrkHgt*3],true);
			}

		// Screw holes
		translate([InBrkHgt-5,0,InBrkThk/2])
			rotate([90,0,0])
				cylinder(20,ScrewDia/2,ScrewDia/2,true,$fn=8);
		translate([InBrkHgt-OutBrkHgt,0,InBrkThk/2])
			rotate([90,0,0])
				cylinder(20,ScrewDia/2,ScrewDia/2,true,$fn=8);
		translate([InBrkHgt-(2*OutBrkHgt-5),0,InBrkThk/2])
			rotate([90,0,0])
				cylinder(20,ScrewDia/2,ScrewDia/2,true,$fn=8);
		translate([InBrkHgt-5,BrkWid,InBrkThk/2])
			rotate([90,0,0])
				cylinder(20,ScrewDia/2,ScrewDia/2,true,$fn=8);
		translate([InBrkHgt-OutBrkHgt,BrkWid,InBrkThk/2])
			rotate([90,0,0])
				cylinder(20,ScrewDia/2,ScrewDia/2,true,$fn=8);
		translate([InBrkHgt-(2*OutBrkHgt-5),BrkWid,InBrkThk/2])
			rotate([90,0,0])
				cylinder(20,ScrewDia/2,ScrewDia/2,true,$fn=8);
	}
}

// Routine to draw he bearing mount
module BearingMnt(Show = 0,BrkThk = 1)
{
	difference()
	{
		union()
		{
			// Shoulder to keep spool off of bracket
			cylinder(BrkThk+SplShdThk,SplShdDia/2,SplShdDia/2,$fn=36);
			// Shoulder to keep bearing from rubbing
			cylinder(BrkThk+BearShdThk+SplShdThk,BearShdDia/2,BearShdDia/2,$fn=36);
			// Mounting shaft
			cylinder(BrkThk+BearThk+BearShdThk+SplShdThk,BearInDia/2,BearInDia/2,$fn=12);
		}

		// Screw hole
		cylinder(50,ScrewDia/2,ScrewDia/2,true,$fn8);
	}

	if (Show)  // Show the bearing if needed
	{
		translate([0,0,BearShdThk+SplShdThk])
			color("Blue",.5)
				difference()
				{
					// Bearing minus the hole
					cylinder(BrkThk+BearThk,BearOutDia/2,BearOutDia/2,$fn=36);
					translate([0,0,-1])
						cylinder(BearThk+2,BearInDia/2,BearInDia/2,$fn=36);
				}
	}
}
